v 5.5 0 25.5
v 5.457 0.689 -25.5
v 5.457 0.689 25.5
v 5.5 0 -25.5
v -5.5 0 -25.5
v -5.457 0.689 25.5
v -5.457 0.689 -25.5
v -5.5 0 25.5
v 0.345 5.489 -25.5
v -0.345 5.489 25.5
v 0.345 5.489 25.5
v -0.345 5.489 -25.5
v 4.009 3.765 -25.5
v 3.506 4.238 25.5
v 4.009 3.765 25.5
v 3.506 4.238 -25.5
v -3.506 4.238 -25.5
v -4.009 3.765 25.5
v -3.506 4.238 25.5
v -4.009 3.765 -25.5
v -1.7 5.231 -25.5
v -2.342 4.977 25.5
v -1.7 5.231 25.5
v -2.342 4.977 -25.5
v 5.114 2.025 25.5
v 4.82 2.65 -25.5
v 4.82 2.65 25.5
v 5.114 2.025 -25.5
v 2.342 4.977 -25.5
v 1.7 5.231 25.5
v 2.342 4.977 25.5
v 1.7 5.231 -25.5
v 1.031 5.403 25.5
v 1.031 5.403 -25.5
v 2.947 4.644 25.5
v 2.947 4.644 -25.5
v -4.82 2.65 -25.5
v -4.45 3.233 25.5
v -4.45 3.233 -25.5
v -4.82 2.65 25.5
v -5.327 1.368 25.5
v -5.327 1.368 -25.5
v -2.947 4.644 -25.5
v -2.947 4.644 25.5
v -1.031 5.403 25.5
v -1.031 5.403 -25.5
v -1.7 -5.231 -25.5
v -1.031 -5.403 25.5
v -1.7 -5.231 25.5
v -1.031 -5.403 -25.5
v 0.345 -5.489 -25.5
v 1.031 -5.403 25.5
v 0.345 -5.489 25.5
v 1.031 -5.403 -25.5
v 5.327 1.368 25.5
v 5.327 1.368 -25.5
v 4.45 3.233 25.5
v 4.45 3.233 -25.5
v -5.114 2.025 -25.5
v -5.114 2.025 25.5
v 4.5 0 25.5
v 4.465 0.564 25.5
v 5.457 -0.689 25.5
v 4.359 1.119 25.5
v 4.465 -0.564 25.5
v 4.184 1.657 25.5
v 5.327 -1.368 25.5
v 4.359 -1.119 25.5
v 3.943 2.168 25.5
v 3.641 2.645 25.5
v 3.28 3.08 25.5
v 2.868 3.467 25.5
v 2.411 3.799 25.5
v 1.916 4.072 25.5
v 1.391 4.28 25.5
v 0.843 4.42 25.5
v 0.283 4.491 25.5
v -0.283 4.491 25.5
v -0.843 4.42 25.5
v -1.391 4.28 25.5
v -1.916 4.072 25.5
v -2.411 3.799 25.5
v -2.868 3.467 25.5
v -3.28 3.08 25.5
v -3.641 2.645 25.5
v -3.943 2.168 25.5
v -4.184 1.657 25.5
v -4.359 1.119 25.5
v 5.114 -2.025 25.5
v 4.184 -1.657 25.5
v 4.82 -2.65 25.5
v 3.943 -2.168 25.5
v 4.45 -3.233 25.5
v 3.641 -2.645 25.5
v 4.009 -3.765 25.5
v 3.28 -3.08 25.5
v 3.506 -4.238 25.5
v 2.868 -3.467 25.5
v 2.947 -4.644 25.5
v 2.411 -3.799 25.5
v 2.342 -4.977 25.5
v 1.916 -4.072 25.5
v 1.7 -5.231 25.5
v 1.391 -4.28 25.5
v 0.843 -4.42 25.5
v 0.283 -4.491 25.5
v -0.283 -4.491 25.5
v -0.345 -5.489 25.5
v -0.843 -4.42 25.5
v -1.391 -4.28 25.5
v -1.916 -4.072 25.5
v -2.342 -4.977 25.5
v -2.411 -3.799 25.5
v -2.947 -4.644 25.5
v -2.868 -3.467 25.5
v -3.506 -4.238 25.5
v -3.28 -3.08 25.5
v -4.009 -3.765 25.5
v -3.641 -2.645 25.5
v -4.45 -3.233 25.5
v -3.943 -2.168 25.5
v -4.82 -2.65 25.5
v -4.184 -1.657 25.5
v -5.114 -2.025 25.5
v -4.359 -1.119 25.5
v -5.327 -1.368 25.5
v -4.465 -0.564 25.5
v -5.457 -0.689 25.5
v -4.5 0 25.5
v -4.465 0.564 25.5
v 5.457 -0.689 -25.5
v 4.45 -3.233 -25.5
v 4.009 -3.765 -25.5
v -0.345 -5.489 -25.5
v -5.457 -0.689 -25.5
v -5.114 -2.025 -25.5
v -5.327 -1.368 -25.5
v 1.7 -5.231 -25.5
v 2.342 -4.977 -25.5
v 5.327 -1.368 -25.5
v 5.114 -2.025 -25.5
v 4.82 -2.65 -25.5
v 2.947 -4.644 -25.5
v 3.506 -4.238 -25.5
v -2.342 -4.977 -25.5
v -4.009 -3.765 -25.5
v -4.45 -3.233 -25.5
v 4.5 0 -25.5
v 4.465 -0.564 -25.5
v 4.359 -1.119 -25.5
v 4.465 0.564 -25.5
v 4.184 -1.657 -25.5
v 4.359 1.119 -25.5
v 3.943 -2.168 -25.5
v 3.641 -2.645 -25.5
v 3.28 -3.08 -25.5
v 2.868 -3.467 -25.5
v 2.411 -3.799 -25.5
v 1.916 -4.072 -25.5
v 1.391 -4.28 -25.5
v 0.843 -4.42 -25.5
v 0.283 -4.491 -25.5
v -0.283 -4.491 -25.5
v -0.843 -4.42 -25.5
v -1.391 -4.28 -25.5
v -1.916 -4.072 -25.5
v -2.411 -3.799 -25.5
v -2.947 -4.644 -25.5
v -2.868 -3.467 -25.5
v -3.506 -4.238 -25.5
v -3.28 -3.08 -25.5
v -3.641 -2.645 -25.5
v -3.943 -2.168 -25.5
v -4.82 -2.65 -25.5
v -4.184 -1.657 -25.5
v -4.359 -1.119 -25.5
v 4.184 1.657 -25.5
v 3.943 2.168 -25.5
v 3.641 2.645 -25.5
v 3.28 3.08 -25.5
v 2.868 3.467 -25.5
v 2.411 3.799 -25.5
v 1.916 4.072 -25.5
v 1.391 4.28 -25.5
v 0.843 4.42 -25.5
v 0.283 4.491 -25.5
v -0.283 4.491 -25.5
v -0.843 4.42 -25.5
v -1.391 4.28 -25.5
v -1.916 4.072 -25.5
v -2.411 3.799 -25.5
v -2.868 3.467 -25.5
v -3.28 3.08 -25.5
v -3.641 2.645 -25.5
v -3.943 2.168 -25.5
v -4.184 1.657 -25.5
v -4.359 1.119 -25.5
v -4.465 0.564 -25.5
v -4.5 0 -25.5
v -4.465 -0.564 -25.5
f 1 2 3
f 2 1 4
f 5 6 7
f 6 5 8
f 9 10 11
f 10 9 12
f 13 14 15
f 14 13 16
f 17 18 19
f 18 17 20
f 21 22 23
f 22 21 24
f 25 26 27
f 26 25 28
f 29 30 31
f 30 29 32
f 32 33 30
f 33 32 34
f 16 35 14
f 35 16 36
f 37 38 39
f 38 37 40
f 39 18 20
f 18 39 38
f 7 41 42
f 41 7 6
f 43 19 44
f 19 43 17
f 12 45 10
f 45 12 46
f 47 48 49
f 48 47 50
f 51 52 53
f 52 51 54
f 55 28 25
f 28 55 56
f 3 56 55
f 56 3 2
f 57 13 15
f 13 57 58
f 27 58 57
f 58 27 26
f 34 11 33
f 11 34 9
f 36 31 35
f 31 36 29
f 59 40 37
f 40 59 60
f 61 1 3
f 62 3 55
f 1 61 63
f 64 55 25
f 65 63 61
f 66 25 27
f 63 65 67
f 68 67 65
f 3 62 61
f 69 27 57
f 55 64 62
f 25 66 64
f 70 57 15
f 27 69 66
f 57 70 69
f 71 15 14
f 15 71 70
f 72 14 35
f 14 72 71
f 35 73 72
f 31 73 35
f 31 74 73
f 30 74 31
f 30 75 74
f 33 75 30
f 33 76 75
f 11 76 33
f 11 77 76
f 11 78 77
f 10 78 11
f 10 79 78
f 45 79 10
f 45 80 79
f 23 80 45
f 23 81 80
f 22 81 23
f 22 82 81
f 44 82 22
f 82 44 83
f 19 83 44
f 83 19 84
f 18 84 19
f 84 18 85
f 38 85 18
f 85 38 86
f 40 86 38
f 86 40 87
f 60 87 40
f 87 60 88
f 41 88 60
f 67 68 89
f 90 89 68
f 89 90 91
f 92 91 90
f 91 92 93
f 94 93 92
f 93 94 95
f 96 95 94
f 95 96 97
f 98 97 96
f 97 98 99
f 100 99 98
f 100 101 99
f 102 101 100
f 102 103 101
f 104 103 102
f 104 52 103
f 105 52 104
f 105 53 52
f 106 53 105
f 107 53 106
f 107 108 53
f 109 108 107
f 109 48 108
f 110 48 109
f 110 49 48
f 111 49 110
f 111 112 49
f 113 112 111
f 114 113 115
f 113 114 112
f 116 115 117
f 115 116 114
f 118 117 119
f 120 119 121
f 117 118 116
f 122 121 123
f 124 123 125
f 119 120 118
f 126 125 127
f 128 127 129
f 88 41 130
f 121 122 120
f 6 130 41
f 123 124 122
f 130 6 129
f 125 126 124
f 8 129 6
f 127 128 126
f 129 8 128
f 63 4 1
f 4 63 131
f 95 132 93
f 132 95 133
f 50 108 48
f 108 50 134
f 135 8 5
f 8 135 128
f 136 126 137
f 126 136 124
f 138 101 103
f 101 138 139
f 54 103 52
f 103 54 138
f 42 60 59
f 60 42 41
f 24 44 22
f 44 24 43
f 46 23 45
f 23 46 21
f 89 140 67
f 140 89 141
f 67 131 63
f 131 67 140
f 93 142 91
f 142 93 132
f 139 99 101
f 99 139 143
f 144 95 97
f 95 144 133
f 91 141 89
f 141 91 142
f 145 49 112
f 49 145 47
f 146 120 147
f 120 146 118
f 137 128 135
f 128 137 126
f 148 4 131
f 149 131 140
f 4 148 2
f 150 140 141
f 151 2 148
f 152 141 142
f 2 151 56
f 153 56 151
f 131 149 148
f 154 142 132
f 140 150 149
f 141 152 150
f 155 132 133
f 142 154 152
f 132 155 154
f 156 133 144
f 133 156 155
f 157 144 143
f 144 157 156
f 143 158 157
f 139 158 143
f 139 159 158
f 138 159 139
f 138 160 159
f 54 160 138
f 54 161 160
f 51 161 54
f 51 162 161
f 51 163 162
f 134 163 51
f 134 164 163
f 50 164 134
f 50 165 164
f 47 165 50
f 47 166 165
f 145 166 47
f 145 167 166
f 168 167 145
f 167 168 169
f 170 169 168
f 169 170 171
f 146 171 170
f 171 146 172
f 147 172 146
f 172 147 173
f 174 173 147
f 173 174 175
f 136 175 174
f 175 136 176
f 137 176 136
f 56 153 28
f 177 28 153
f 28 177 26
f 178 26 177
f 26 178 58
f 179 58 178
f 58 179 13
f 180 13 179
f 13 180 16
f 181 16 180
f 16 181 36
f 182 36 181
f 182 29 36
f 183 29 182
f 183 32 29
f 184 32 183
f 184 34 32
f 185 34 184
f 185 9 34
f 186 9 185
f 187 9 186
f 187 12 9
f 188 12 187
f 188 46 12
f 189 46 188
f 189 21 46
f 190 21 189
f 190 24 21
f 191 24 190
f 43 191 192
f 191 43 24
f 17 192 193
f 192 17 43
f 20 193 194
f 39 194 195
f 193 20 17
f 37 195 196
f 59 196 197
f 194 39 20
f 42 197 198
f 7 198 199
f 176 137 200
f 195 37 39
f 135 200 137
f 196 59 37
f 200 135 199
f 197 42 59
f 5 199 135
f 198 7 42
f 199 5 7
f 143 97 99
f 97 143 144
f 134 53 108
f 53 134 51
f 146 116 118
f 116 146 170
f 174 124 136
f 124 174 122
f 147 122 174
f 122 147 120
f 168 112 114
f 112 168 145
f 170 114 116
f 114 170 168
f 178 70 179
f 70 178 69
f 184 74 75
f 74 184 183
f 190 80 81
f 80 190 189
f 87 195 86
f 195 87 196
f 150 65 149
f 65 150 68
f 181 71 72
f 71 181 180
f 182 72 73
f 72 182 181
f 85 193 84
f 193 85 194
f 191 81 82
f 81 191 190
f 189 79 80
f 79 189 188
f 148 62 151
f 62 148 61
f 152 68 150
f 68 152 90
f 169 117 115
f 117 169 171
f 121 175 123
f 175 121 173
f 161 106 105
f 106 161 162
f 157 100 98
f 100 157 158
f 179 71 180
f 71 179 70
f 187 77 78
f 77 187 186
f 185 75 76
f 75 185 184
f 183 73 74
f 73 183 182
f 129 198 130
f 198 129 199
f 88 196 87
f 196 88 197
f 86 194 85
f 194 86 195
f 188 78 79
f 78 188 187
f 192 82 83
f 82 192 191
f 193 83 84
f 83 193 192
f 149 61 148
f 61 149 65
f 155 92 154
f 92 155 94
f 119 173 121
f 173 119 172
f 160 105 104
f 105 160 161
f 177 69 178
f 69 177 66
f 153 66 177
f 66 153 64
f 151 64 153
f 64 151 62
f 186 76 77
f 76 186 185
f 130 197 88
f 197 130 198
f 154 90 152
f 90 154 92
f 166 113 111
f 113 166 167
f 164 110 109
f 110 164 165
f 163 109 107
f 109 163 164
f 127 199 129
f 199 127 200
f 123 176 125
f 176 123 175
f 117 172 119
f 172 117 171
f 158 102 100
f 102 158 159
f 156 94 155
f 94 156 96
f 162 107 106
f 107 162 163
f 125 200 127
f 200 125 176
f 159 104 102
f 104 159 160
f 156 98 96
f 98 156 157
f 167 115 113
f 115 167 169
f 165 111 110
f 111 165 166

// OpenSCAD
$fn = 50;


difference() {
	union() {
		translate(v = [0, 0, -25.5000000000]) {
			cylinder(h = 51, r = 5.5000000000);
		}
	}
	union() {
		translate(v = [0, 0, -100.0000000000]) {
			cylinder(h = 200, r = 4.5000000000);
		}
	}
}
